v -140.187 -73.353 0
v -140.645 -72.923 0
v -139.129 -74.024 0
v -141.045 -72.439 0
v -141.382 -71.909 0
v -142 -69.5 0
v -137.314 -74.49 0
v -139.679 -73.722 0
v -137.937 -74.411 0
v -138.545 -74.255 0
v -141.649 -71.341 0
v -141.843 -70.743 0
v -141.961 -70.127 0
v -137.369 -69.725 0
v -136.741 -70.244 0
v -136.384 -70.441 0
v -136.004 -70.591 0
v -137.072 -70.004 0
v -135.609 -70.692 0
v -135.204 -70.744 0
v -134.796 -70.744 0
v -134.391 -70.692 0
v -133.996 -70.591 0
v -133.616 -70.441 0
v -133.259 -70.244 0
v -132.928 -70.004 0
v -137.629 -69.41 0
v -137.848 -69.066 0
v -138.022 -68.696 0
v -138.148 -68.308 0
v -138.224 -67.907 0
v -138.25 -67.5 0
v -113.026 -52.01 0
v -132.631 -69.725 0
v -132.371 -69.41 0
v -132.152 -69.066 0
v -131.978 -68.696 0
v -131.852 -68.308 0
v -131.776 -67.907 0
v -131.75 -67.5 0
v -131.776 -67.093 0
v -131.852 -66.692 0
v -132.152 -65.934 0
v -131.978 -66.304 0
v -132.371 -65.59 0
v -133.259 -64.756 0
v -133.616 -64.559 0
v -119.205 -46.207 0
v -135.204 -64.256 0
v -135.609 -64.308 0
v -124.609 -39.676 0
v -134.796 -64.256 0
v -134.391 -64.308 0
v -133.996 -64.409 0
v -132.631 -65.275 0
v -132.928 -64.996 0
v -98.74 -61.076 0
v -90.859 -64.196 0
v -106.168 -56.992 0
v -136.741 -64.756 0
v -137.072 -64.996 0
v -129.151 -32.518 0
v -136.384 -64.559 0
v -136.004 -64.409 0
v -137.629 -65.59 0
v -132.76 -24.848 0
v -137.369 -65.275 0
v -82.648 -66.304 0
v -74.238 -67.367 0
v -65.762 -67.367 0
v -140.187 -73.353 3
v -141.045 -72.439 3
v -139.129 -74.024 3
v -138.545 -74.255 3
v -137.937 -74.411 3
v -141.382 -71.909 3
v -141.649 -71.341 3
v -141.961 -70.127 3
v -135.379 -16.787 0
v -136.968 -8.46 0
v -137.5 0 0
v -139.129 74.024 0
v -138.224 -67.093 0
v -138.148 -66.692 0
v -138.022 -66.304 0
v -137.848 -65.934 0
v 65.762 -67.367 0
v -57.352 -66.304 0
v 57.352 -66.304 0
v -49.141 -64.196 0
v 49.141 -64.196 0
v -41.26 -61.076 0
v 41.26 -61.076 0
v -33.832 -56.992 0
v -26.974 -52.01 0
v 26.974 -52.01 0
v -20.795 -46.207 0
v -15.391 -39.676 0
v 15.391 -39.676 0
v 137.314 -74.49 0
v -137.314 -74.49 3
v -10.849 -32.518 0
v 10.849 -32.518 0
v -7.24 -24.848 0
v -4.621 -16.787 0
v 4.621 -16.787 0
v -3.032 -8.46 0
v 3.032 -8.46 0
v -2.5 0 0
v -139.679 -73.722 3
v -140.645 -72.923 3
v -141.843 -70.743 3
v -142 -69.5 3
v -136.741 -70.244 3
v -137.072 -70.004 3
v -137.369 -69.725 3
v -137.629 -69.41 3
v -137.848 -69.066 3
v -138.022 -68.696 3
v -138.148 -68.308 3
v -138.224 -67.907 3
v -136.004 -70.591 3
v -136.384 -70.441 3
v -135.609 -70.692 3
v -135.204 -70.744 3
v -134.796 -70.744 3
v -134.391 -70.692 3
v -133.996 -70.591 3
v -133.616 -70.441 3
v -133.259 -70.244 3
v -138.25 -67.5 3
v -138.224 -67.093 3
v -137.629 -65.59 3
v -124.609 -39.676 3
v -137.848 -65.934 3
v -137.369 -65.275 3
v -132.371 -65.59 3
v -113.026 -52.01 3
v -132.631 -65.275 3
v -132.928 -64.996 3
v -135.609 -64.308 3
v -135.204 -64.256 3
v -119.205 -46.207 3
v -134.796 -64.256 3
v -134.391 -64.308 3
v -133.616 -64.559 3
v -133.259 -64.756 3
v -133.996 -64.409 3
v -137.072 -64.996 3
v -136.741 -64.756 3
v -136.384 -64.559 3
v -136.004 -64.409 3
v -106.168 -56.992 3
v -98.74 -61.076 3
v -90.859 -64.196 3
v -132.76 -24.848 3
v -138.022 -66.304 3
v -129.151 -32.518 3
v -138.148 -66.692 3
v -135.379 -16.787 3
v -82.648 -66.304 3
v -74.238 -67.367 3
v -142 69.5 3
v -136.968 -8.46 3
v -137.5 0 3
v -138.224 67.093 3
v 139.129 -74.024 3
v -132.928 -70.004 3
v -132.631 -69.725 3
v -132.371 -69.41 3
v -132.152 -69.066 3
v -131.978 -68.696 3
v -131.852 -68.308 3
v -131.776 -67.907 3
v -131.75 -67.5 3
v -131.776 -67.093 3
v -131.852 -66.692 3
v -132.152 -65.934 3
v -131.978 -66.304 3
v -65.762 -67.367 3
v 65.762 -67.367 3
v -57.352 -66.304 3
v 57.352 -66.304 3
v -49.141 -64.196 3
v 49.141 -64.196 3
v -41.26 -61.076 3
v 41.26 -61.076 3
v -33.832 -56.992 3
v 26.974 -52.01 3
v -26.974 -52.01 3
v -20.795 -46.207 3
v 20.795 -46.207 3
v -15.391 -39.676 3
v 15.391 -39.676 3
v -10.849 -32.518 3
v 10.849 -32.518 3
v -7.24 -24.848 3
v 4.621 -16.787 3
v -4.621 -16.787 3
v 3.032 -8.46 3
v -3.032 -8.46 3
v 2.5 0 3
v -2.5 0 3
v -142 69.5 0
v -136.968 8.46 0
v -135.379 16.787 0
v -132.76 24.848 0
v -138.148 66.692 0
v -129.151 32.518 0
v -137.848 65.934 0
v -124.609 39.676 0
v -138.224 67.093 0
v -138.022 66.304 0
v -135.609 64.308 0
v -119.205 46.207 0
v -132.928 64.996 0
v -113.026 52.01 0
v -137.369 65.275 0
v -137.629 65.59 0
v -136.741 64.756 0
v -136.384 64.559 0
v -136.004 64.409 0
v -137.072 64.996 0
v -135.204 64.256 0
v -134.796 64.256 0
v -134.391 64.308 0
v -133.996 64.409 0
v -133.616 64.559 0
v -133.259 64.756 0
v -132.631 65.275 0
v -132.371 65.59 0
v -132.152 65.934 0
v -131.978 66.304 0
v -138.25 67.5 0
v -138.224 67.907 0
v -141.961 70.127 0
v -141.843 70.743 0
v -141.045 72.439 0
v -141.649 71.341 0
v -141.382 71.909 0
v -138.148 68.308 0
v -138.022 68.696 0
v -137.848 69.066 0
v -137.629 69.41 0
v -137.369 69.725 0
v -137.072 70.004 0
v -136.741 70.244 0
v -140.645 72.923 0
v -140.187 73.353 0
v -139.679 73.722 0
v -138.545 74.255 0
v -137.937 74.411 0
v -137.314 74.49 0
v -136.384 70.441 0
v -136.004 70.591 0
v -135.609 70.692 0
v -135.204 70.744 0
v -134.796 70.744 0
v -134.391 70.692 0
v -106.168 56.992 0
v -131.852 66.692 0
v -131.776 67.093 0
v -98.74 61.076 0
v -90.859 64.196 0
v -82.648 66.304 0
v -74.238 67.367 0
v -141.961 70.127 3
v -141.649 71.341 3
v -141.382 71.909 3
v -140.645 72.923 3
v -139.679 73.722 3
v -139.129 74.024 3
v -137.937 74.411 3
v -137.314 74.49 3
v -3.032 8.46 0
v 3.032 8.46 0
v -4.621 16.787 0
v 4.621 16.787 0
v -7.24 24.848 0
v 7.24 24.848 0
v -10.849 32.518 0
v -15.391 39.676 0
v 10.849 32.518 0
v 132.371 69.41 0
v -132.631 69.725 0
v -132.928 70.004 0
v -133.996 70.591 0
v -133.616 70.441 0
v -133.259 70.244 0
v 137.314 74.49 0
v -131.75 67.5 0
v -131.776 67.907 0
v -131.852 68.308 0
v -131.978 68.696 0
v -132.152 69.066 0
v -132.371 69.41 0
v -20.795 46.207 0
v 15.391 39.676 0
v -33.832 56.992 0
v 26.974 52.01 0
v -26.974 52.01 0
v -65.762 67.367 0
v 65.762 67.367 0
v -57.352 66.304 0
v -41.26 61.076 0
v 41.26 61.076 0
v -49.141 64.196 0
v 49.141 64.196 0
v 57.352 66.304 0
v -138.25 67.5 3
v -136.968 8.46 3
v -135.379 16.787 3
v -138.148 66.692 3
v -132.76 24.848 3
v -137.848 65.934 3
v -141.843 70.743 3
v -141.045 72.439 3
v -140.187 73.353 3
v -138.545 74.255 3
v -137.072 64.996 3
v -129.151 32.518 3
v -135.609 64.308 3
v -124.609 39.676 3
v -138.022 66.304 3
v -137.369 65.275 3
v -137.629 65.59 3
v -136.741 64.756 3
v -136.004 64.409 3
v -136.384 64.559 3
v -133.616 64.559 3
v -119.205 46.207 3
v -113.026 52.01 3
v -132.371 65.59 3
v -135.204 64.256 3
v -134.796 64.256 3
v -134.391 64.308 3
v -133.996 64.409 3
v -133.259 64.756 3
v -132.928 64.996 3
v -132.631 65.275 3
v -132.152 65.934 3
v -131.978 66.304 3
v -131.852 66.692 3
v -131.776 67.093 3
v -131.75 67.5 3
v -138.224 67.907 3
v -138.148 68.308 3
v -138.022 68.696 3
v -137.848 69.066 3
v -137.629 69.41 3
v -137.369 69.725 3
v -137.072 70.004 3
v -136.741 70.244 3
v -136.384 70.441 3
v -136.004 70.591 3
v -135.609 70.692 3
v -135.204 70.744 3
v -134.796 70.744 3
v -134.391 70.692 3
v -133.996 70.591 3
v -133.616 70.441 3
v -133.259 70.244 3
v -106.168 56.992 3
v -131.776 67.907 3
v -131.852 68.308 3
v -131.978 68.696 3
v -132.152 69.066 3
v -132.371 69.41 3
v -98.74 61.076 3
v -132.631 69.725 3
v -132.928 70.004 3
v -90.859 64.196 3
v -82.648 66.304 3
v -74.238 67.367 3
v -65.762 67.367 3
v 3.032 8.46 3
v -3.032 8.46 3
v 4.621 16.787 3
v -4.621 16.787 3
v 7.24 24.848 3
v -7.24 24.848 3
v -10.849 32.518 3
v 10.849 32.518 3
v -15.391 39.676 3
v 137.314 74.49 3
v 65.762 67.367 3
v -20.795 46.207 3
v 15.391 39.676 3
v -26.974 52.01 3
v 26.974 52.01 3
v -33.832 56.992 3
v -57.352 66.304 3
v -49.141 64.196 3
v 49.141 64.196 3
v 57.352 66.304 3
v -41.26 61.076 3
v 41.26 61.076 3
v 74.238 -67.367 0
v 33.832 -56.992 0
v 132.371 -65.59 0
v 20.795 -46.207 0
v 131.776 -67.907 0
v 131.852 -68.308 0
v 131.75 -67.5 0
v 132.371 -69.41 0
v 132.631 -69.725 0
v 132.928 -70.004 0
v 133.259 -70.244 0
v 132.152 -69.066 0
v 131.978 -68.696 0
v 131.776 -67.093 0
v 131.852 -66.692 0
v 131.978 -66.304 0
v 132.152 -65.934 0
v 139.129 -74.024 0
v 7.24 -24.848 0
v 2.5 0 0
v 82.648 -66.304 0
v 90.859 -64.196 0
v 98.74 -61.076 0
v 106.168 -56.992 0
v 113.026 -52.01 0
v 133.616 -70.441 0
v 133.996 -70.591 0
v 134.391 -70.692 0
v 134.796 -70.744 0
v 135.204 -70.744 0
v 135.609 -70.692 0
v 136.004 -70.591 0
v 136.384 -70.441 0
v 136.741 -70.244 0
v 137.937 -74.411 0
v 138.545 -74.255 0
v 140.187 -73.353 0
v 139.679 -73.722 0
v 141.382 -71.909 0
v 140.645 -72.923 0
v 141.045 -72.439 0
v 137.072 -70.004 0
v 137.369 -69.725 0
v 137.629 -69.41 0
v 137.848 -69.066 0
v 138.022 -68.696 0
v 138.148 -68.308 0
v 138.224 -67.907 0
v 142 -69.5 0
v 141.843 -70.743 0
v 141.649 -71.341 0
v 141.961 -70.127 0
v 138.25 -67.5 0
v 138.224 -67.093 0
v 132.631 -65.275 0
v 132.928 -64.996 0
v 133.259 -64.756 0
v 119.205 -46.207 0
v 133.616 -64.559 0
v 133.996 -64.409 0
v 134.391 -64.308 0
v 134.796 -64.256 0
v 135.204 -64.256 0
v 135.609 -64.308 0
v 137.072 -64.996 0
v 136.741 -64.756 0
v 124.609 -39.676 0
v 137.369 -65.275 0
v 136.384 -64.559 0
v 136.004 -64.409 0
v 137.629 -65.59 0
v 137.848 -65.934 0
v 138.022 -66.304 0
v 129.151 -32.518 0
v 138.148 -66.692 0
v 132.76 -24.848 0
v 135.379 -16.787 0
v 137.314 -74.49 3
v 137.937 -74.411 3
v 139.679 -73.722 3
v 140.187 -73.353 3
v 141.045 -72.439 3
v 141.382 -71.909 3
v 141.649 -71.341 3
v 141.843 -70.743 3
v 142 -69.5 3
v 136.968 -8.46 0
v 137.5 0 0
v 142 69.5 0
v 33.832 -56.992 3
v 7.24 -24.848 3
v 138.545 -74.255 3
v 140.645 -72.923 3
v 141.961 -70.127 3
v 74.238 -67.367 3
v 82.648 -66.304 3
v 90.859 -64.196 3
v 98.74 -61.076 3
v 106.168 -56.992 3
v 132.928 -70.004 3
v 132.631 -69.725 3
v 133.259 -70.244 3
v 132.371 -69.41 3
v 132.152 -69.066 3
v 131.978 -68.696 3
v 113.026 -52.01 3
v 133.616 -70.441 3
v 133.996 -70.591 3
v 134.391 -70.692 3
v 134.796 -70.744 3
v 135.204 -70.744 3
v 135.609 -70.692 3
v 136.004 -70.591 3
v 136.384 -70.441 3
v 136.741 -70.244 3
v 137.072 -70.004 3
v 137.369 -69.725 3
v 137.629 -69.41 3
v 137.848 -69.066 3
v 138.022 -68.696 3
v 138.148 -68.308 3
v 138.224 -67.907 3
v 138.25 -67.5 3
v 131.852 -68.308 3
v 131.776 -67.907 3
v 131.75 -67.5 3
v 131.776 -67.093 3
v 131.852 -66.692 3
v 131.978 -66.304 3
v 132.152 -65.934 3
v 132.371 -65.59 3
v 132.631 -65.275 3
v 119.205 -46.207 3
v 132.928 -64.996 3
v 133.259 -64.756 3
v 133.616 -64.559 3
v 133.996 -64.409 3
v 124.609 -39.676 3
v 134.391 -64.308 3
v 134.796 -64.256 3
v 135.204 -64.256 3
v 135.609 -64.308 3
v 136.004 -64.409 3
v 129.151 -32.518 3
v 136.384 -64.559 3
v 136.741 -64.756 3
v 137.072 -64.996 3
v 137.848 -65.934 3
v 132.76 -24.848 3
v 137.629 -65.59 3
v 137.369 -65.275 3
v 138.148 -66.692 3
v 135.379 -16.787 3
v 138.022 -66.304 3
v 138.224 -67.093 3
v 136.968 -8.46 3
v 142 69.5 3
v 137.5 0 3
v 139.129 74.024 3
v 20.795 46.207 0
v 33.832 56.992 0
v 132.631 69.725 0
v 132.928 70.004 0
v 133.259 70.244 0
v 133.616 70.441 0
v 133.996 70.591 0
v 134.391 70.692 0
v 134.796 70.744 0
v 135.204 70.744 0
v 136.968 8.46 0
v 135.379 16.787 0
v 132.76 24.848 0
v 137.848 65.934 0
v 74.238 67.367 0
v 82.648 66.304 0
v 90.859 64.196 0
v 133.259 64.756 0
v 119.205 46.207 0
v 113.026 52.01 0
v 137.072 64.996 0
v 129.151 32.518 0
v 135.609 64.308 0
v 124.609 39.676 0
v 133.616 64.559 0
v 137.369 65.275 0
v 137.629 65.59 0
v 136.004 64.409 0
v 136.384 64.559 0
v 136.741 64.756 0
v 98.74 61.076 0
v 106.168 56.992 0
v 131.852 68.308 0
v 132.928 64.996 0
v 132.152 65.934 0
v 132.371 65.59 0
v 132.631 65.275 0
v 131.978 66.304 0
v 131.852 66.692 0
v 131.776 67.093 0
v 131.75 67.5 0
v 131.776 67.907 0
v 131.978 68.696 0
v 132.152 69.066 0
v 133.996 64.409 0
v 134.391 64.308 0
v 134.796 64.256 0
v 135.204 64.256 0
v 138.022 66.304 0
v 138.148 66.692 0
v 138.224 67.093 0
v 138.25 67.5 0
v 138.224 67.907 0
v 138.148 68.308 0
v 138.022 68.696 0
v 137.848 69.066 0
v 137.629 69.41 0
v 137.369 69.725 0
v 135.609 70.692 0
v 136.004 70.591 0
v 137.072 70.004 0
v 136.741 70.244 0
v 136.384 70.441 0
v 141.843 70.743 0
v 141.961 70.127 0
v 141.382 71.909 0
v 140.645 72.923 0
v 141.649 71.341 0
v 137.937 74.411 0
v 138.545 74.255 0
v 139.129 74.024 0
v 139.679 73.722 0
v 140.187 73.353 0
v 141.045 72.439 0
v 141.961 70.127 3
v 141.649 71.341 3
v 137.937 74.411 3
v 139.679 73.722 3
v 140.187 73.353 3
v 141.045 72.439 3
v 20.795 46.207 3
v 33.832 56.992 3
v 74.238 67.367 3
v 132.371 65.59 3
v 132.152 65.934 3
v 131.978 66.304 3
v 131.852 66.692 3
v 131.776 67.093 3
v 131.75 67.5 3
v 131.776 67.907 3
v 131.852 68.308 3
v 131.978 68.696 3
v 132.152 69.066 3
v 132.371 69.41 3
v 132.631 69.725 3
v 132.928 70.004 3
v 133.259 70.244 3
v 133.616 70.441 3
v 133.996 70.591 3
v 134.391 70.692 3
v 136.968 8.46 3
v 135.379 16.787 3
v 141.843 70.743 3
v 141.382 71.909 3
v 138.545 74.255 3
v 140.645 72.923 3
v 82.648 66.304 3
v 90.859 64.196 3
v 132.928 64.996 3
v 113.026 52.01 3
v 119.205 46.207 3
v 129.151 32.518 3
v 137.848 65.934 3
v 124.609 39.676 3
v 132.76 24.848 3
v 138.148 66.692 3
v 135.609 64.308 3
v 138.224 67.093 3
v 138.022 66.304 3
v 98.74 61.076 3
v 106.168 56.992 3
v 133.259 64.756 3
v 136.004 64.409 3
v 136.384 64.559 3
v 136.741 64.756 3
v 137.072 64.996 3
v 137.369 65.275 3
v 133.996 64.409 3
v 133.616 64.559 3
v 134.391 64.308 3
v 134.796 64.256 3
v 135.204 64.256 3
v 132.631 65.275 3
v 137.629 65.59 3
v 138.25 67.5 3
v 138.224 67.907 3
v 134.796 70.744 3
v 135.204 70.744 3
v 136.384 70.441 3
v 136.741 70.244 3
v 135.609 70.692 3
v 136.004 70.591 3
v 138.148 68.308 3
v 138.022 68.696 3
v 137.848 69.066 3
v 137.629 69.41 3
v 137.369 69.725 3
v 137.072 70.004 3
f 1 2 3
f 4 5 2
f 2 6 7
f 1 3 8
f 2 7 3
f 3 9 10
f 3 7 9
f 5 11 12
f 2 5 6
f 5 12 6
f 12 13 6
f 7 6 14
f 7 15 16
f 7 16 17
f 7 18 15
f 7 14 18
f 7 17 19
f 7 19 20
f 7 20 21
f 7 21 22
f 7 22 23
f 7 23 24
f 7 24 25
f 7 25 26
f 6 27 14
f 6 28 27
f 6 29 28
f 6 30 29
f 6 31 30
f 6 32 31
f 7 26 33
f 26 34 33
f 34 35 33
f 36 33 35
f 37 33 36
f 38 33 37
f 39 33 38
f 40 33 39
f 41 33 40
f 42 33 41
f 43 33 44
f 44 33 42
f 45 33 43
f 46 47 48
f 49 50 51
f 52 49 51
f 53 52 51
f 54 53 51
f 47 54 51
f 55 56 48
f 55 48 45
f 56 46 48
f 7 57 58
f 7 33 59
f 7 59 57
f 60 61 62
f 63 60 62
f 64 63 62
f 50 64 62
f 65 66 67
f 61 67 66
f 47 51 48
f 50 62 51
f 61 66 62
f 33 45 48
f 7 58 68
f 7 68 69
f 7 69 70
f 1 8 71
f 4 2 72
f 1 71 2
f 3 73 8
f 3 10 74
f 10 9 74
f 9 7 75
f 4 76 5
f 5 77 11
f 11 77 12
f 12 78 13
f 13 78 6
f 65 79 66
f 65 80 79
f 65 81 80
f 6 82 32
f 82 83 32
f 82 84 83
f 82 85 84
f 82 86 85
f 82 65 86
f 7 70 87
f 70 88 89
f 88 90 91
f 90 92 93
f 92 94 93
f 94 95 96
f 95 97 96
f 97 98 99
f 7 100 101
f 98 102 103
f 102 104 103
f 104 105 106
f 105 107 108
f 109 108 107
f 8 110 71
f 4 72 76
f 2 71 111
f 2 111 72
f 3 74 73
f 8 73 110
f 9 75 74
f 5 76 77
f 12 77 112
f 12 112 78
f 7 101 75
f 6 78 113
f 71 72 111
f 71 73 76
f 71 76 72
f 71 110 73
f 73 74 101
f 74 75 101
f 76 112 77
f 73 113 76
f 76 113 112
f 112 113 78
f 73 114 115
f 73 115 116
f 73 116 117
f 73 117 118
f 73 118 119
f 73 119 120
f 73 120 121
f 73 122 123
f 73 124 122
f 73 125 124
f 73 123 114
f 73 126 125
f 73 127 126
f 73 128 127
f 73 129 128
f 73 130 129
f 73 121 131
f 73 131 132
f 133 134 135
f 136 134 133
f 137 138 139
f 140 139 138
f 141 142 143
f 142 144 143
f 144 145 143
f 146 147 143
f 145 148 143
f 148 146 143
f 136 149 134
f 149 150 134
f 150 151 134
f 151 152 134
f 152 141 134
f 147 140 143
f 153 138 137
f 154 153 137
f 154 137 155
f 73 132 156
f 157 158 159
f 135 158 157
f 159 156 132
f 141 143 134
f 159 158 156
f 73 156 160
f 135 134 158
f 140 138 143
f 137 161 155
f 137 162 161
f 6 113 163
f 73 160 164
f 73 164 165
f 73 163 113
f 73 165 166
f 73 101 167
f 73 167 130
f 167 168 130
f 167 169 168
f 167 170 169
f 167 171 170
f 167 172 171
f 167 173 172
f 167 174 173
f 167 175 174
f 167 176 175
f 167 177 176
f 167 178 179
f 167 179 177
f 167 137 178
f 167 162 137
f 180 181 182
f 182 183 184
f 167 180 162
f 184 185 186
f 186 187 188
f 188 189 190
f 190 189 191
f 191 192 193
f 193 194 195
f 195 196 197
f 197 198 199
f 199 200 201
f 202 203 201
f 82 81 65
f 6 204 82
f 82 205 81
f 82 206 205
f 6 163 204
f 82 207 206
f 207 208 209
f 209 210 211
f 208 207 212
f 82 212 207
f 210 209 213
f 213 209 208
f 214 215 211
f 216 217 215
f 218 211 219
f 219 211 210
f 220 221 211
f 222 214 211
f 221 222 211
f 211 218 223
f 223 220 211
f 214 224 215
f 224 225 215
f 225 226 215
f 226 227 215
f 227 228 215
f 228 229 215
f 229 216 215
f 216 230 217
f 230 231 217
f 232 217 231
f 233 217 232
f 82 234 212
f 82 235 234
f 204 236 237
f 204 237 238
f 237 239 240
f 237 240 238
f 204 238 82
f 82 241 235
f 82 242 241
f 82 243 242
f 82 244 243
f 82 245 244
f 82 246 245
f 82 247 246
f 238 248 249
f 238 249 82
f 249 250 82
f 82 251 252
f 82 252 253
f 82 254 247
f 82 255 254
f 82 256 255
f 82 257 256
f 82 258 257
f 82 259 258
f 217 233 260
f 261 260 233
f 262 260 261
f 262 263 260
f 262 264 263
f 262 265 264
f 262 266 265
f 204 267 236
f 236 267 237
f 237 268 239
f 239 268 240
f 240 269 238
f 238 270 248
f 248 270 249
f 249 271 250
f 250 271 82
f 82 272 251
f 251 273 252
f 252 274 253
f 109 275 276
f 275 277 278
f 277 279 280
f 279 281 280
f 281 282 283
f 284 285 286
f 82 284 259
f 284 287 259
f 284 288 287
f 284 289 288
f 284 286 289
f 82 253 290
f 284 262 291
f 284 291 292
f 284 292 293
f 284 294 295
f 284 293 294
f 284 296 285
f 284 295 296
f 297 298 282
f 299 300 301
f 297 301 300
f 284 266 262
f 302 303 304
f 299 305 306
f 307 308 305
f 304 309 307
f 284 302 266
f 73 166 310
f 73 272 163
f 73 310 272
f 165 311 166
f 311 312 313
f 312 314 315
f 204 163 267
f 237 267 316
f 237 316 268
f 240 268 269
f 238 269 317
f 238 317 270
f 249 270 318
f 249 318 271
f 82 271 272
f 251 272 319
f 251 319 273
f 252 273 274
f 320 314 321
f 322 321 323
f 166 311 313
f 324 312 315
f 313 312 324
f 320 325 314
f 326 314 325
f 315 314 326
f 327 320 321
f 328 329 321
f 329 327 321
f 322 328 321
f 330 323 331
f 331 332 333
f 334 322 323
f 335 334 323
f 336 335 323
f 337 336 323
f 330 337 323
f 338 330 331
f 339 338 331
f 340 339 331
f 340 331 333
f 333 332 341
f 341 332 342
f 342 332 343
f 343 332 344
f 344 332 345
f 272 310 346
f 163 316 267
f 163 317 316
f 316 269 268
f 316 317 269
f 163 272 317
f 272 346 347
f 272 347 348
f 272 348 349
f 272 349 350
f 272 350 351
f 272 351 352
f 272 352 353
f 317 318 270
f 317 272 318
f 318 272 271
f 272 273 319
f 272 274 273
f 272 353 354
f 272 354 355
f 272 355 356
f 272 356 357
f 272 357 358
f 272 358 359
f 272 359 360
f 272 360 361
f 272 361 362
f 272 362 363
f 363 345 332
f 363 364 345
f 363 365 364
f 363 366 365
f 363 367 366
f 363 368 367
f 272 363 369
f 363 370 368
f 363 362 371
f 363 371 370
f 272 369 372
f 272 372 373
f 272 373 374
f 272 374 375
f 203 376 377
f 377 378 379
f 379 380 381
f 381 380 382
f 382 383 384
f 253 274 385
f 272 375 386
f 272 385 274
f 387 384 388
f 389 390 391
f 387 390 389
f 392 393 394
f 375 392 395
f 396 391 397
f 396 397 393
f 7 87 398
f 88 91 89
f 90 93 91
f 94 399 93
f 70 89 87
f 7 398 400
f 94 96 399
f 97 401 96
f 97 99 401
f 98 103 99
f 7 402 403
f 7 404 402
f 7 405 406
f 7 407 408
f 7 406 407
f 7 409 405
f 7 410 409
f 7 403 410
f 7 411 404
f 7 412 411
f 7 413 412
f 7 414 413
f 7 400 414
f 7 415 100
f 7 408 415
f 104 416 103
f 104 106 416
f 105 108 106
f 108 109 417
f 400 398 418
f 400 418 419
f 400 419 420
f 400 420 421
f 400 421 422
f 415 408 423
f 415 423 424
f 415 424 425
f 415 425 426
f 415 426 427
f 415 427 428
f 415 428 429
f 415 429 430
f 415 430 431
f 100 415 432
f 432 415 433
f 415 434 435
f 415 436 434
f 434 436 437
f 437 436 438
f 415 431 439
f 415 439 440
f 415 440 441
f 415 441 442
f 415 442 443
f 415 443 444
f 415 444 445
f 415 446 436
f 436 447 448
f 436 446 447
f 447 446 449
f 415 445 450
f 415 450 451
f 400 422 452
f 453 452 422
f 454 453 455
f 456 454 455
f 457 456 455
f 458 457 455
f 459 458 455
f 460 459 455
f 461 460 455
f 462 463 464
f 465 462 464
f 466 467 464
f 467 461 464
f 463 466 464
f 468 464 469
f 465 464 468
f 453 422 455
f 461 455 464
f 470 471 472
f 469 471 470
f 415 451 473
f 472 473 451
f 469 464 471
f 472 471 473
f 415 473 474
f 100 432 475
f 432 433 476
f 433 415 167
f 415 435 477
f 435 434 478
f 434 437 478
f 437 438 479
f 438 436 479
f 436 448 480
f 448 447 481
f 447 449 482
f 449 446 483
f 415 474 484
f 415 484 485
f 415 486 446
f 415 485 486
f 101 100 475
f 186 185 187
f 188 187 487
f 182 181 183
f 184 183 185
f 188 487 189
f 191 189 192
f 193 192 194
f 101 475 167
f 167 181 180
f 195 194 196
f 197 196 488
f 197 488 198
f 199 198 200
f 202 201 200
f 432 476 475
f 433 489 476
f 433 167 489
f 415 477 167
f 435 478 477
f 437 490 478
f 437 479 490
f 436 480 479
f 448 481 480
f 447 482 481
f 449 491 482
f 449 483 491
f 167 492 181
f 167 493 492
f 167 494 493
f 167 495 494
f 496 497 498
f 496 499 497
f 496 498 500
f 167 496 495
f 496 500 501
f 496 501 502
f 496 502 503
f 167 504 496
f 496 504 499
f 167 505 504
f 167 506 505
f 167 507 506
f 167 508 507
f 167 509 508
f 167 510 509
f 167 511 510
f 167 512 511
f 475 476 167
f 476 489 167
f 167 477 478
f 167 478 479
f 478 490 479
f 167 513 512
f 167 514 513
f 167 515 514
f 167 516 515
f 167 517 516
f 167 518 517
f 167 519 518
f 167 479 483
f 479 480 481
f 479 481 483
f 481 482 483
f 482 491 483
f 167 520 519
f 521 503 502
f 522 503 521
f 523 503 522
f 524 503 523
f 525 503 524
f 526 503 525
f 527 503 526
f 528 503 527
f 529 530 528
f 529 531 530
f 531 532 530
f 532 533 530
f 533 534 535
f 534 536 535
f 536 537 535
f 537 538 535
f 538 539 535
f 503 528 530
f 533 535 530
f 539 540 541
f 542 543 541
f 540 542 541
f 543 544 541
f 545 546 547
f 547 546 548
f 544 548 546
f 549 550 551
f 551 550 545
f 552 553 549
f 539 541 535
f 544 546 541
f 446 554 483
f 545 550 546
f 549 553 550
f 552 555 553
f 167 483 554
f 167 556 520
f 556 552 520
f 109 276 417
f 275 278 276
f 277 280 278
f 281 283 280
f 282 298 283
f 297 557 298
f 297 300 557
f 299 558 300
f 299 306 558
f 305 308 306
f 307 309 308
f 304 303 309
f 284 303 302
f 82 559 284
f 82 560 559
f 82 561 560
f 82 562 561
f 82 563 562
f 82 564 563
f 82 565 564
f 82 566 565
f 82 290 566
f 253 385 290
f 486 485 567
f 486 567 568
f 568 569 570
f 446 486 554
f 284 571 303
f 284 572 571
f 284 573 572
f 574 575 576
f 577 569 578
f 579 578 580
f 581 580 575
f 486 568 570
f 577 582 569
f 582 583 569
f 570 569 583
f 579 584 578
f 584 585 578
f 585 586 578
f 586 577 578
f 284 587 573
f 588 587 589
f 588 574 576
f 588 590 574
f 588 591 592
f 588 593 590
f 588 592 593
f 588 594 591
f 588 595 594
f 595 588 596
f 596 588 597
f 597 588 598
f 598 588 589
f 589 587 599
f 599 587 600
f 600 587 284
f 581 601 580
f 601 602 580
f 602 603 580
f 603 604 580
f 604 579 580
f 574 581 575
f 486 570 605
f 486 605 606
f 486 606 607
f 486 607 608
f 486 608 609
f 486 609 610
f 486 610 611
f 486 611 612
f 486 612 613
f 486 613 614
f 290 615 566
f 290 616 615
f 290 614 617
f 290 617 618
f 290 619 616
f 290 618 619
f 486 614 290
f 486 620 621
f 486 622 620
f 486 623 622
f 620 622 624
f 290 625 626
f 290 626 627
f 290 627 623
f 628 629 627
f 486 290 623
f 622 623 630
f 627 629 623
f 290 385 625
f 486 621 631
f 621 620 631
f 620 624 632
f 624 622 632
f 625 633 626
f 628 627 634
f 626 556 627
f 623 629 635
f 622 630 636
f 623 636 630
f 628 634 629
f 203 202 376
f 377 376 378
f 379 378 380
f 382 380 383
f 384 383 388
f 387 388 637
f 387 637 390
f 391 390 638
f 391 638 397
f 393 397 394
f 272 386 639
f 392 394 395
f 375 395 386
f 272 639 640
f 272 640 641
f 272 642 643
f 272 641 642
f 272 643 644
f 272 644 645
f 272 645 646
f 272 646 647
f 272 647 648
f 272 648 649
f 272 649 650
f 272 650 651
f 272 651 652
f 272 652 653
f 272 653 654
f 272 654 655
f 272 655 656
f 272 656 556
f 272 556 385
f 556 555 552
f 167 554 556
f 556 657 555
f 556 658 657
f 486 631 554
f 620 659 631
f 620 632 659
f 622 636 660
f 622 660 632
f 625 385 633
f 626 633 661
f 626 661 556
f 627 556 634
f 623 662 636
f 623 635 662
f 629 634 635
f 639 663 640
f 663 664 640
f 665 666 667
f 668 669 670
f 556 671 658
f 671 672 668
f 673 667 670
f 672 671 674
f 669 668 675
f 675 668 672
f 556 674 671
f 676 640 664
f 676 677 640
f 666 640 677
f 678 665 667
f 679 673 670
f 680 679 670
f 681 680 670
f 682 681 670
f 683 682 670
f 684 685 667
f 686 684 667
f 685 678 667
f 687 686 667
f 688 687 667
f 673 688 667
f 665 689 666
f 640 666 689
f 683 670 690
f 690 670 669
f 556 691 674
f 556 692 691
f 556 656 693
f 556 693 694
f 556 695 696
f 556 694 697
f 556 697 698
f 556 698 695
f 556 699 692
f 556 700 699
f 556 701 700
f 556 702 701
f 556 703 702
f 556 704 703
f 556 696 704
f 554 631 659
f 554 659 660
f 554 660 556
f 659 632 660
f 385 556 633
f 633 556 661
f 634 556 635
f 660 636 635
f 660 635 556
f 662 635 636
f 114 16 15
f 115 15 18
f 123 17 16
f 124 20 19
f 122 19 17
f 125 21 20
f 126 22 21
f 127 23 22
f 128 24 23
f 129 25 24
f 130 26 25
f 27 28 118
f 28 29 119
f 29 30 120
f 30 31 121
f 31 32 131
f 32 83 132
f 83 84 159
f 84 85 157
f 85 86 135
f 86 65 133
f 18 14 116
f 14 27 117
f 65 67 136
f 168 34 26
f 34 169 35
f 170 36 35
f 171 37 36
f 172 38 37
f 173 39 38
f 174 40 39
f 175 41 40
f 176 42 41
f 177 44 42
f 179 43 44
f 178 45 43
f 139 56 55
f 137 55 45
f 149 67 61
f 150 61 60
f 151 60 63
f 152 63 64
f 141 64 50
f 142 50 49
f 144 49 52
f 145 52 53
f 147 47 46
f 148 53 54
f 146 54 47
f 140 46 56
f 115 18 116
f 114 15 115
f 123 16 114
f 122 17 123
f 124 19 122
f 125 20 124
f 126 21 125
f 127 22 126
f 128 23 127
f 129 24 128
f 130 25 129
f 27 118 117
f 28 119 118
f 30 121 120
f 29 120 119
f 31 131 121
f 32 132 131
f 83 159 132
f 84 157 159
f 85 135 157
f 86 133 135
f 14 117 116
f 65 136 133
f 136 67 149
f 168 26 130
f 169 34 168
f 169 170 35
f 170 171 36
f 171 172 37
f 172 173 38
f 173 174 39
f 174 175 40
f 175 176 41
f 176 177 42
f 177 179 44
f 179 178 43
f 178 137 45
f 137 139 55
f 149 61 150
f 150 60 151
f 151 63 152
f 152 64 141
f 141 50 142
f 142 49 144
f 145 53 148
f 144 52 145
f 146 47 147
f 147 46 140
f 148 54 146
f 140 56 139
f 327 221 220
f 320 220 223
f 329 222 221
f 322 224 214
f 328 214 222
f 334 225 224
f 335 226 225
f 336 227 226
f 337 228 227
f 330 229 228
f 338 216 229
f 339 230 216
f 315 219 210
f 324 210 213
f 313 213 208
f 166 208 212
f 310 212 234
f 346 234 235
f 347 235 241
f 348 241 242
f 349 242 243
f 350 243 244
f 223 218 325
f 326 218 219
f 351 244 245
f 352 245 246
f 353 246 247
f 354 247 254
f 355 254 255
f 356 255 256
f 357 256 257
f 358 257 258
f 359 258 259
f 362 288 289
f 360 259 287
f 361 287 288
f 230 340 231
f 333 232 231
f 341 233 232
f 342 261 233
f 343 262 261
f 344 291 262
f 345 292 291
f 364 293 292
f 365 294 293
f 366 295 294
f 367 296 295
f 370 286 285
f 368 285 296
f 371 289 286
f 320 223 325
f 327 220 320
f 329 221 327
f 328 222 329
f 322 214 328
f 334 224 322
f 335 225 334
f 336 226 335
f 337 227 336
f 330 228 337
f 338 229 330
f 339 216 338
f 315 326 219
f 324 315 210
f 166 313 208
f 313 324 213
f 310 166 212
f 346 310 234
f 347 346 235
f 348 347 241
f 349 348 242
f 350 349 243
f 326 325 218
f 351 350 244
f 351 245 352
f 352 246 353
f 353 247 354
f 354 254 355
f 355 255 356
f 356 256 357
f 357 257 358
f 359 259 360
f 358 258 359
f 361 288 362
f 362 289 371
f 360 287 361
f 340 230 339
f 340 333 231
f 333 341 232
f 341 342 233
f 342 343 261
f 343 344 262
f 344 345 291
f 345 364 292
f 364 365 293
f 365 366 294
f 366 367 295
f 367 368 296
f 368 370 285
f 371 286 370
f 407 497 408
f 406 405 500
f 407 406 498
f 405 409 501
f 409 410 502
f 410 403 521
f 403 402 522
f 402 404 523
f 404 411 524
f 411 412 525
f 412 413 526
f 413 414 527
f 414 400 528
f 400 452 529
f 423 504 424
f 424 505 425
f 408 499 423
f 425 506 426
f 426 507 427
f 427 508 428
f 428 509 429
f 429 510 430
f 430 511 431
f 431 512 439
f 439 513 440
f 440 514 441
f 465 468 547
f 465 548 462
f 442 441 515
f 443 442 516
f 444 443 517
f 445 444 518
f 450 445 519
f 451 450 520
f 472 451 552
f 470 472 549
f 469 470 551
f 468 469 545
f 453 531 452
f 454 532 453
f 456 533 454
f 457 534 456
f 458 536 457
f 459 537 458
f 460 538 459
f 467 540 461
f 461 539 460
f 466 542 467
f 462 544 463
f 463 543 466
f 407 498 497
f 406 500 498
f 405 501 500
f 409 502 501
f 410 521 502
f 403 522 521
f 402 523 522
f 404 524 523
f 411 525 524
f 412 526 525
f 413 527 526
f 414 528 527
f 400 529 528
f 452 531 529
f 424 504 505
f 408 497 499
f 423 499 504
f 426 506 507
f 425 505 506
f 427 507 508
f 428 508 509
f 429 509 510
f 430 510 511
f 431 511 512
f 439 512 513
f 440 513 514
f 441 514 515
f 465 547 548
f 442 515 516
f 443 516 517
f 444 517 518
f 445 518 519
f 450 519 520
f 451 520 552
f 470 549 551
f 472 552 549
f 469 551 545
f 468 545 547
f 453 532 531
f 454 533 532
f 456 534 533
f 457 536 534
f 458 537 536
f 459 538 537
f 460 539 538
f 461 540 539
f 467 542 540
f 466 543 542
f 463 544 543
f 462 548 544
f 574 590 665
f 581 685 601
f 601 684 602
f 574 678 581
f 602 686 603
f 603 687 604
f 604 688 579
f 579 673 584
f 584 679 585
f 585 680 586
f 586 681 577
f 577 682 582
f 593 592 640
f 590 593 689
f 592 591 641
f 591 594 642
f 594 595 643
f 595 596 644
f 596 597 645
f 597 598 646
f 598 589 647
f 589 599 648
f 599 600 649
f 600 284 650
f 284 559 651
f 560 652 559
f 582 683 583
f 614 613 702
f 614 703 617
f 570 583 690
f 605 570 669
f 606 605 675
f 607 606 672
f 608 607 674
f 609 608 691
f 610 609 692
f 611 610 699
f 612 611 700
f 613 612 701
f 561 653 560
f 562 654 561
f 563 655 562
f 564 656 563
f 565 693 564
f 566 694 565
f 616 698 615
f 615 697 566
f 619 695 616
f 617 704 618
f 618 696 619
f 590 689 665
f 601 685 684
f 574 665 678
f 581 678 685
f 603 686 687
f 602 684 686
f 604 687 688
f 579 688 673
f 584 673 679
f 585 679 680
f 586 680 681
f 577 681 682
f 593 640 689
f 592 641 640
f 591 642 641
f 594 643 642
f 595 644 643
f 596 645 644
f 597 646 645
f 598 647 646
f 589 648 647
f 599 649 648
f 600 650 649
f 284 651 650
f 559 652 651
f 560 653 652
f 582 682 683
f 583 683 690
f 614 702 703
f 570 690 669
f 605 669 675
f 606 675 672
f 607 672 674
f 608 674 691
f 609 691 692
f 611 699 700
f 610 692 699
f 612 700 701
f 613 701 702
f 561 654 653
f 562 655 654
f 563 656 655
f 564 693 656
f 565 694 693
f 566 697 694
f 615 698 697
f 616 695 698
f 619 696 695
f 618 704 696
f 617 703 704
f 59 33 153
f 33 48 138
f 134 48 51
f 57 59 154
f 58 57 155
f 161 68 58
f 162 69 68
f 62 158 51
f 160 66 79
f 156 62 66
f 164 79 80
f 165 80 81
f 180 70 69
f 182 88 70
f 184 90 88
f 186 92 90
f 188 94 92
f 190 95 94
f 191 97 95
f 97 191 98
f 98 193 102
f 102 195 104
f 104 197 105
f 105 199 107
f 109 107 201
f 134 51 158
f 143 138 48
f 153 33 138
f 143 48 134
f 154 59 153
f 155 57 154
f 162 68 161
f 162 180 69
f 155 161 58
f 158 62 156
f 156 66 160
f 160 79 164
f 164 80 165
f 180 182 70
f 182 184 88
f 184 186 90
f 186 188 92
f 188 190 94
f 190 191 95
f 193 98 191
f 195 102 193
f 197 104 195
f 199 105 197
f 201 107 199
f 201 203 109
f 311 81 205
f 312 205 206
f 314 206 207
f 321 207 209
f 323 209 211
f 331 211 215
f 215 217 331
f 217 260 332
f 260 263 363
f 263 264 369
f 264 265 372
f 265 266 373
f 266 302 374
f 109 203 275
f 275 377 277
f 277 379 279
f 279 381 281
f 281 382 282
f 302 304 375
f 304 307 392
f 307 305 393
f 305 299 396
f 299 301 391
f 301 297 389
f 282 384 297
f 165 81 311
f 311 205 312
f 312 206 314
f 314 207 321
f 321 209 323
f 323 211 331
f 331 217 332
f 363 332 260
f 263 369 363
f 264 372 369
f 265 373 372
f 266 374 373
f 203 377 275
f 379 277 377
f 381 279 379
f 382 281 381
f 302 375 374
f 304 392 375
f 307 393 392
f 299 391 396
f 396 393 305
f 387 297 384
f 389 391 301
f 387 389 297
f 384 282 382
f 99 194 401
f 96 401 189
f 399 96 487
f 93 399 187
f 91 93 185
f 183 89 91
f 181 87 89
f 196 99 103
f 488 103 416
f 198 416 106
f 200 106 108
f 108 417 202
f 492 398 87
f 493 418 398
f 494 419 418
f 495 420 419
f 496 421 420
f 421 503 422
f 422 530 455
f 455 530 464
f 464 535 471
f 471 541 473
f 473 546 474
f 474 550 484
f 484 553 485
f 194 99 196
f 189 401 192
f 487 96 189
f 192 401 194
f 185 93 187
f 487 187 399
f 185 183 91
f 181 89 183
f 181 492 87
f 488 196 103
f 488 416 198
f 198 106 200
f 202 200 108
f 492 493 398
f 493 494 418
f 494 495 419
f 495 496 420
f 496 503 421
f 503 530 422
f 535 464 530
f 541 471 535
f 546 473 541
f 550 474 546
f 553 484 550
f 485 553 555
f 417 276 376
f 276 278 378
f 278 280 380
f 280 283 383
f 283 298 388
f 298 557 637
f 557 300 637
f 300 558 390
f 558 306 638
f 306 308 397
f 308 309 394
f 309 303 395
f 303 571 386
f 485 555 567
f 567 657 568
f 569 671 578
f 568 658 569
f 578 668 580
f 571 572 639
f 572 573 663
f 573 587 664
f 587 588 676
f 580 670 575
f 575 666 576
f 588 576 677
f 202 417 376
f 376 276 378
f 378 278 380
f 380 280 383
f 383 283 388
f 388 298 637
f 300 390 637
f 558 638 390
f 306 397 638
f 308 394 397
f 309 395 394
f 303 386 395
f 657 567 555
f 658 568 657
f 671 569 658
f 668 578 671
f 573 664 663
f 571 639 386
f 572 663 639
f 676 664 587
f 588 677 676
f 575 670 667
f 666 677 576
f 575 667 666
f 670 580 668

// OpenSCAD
$fn = 50;

difference() {
	union() {
		hull() {
			translate(v = [-137.0, 69.5, 0]) {
				cylinder(h = 3, r = 5);
			}
			translate(v = [137.0, 69.5, 0]) {
				cylinder(h = 3, r = 5);
			}
			translate(v = [-137.0, -69.5, 0]) {
				cylinder(h = 3, r = 5);
			}
			translate(v = [137.0, -69.5, 0]) {
				cylinder(h = 3, r = 5);
			}
		}
	}
	union() {
		translate(v = [-135.0, -67.5, -100.0]) {
			cylinder(h = 200, r = 3.25);
		}
		translate(v = [-135.0, 67.5, -100.0]) {
			cylinder(h = 200, r = 3.25);
		}
		translate(v = [135.0, -67.5, -100.0]) {
			cylinder(h = 200, r = 3.25);
		}
		translate(v = [135.0, 67.5, -100.0]) {
			cylinder(h = 200, r = 3.25);
		}
		translate(v = [-135.0, -67.5, -100.0]) {
			cylinder(h = 200, r = 1.8);
		}
		translate(v = [-135.0, 67.5, -100.0]) {
			cylinder(h = 200, r = 1.8);
		}
		translate(v = [135.0, -67.5, -100.0]) {
			cylinder(h = 200, r = 1.8);
		}
		translate(v = [135.0, 67.5, -100.0]) {
			cylinder(h = 200, r = 1.8);
		}
		translate(v = [-70.0, 0, 0.0]) {
			cylinder(h = 3, r = 67.5);
		}
		translate(v = [70.0, 0, 0.0]) {
			cylinder(h = 3, r = 67.5);
		}
	}
}
